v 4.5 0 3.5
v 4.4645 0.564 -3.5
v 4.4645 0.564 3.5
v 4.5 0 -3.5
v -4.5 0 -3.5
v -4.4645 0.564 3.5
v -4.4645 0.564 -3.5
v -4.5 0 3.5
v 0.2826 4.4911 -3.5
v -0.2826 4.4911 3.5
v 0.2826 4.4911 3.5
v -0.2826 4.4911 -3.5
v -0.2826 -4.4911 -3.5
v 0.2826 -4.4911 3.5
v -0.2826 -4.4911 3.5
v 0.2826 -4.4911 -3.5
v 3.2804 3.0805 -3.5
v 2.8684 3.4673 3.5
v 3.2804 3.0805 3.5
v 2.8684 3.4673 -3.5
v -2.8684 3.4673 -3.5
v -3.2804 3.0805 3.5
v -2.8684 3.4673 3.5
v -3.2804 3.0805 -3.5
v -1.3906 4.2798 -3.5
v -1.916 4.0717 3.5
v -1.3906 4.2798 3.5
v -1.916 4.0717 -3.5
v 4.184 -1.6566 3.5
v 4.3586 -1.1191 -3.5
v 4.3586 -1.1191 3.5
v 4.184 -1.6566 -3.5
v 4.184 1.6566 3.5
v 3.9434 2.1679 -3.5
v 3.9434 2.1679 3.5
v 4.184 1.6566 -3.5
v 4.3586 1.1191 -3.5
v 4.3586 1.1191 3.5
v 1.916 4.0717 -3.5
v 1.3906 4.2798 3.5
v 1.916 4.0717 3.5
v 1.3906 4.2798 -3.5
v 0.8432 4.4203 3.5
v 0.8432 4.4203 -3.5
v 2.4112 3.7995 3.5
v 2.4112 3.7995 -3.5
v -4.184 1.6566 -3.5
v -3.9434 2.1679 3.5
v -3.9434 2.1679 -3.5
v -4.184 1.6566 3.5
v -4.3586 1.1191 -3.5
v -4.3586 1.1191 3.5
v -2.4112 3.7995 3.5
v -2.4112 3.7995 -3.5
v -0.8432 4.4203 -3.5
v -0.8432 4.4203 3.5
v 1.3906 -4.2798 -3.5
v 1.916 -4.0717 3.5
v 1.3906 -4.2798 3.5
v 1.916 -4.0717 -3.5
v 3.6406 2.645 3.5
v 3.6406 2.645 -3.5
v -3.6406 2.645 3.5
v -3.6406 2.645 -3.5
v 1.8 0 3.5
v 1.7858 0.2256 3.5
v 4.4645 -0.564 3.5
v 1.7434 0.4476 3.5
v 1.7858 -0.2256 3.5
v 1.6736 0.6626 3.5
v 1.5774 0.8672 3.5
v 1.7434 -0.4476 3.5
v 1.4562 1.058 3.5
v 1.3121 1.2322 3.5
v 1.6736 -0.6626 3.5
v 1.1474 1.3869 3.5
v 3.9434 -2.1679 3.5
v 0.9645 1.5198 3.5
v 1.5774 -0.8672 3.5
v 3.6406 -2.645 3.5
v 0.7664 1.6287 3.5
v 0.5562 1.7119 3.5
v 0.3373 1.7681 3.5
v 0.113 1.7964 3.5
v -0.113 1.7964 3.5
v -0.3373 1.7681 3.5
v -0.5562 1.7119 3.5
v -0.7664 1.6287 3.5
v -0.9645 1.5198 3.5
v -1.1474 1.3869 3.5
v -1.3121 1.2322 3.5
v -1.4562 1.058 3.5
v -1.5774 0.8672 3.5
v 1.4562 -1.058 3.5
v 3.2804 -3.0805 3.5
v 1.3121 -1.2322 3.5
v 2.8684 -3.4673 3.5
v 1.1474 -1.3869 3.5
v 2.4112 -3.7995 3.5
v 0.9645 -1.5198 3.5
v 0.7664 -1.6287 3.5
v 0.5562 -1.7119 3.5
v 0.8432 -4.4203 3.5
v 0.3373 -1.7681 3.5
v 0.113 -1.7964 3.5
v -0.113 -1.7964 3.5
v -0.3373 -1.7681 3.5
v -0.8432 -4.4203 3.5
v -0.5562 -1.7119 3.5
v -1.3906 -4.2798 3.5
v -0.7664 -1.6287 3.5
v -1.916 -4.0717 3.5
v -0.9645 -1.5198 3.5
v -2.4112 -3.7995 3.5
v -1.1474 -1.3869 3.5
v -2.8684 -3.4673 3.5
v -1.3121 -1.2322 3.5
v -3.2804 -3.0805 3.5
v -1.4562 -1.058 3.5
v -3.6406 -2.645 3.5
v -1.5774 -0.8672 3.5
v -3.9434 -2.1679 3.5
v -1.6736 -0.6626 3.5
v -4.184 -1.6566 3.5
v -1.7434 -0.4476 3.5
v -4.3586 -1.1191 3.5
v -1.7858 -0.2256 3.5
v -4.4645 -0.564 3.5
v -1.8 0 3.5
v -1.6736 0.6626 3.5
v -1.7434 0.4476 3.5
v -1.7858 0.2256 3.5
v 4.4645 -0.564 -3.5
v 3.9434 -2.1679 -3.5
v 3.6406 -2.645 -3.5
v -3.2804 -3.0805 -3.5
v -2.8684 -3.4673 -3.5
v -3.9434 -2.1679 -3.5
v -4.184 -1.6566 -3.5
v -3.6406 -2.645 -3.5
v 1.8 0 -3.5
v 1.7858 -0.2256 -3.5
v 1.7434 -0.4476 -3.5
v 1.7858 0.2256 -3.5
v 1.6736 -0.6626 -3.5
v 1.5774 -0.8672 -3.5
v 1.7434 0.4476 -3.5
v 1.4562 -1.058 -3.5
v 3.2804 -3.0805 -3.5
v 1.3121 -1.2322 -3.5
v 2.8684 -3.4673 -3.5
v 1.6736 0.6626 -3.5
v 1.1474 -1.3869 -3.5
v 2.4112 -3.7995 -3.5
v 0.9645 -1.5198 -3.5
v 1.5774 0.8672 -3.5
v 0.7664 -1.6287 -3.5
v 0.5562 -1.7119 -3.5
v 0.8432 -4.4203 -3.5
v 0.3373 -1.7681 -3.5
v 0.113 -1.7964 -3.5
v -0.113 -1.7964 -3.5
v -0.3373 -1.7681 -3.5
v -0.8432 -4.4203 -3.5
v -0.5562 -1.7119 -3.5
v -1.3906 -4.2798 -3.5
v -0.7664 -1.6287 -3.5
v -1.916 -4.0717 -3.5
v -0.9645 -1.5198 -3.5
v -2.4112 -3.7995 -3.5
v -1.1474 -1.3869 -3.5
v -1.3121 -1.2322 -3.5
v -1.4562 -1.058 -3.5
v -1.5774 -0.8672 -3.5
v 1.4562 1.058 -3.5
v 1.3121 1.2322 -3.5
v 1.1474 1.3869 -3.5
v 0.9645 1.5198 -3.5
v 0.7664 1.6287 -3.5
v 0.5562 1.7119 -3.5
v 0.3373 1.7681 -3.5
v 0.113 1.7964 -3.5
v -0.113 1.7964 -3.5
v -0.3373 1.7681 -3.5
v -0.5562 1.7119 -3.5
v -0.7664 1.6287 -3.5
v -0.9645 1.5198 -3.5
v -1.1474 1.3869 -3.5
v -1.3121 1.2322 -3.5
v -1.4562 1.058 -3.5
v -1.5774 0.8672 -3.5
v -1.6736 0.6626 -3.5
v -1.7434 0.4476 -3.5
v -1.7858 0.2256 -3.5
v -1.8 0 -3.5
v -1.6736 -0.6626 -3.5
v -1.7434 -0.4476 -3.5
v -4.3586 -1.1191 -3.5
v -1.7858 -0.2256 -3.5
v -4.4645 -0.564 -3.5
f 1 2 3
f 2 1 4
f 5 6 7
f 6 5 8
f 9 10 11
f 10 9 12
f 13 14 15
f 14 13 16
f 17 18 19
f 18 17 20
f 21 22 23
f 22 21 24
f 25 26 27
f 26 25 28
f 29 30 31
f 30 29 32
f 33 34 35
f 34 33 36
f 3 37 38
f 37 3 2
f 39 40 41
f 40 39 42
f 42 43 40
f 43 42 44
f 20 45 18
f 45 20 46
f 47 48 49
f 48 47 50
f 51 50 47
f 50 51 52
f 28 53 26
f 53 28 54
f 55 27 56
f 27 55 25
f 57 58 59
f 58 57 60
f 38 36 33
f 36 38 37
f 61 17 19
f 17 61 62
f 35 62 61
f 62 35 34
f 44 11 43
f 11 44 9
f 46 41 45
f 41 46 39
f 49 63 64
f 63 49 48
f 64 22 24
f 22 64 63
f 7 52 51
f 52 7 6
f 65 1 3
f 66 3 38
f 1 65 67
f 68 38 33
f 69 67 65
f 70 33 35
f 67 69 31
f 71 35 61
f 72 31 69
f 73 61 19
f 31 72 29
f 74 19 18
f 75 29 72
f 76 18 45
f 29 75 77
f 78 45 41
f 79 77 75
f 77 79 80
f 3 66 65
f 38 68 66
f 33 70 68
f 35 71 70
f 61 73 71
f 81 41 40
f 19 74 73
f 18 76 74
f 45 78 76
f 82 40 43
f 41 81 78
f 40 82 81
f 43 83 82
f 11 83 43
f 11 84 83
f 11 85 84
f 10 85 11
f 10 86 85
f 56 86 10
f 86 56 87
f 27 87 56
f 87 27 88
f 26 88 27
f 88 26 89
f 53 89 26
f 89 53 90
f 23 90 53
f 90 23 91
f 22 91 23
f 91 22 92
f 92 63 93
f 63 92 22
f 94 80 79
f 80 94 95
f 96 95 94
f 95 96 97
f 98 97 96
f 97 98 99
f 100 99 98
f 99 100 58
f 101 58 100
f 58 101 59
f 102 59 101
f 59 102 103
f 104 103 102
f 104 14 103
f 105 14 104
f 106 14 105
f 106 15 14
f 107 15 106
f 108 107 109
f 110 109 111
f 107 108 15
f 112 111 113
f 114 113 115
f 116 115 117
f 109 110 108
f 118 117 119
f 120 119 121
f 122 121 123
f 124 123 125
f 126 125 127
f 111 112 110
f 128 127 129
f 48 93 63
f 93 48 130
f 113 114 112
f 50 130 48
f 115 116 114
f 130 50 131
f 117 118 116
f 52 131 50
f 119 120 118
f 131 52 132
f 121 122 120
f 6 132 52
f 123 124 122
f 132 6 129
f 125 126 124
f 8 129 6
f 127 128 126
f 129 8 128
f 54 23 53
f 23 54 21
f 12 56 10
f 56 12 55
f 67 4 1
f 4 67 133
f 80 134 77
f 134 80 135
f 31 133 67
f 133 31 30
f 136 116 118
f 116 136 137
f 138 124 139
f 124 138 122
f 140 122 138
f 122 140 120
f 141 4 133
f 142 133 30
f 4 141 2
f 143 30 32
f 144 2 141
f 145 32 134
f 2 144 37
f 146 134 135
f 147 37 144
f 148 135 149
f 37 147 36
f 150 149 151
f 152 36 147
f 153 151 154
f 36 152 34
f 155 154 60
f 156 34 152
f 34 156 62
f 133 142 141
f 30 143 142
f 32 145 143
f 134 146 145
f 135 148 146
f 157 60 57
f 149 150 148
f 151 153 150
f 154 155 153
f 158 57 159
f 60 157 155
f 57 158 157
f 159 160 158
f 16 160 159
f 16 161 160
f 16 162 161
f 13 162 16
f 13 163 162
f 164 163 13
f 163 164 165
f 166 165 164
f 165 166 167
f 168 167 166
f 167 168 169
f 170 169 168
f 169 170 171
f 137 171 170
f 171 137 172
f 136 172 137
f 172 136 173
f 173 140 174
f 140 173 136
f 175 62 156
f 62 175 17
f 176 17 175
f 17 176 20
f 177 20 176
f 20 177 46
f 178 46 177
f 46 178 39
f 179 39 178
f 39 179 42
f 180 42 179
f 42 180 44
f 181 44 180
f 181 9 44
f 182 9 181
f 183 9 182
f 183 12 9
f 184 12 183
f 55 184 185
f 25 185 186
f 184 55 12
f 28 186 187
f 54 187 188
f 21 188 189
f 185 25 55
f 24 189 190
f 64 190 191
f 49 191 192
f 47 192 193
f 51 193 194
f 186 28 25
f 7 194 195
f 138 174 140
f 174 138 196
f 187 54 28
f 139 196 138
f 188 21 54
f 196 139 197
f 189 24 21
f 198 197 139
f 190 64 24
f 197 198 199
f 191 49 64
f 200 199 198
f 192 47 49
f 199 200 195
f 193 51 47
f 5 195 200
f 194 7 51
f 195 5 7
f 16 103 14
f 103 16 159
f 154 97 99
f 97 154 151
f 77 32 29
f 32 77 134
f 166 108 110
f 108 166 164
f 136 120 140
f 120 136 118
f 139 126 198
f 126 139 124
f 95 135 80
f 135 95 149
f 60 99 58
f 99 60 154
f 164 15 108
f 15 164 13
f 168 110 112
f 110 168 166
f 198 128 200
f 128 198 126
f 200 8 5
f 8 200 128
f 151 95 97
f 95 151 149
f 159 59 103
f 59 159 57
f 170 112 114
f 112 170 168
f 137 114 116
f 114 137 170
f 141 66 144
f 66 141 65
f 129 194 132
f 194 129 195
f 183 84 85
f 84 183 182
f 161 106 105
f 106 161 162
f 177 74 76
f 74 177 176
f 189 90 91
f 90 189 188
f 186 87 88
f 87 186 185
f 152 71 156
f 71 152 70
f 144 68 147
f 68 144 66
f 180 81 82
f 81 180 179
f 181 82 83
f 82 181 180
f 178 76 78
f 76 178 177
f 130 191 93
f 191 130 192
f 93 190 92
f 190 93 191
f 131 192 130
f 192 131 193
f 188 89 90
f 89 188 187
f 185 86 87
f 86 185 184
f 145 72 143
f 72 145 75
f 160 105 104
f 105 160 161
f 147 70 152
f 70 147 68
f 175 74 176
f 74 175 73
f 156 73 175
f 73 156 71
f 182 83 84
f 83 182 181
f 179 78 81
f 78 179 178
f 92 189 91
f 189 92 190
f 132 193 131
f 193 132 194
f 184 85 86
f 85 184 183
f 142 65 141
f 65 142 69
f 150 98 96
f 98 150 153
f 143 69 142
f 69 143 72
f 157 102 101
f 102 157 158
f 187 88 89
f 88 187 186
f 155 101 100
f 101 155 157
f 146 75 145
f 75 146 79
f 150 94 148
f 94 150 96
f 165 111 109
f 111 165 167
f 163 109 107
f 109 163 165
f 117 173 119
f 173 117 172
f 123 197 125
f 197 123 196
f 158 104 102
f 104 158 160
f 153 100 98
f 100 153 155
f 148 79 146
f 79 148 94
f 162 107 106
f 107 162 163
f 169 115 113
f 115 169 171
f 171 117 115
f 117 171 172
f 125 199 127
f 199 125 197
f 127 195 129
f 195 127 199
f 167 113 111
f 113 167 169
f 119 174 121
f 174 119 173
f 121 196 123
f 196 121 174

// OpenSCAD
$fn = 50;


difference() {
	union() {
		translate(v = [0, 0, -3.5000000000]) {
			cylinder(h = 7, r = 4.5000000000);
		}
	}
	union() {
		translate(v = [0, 0, -100.0000000000]) {
			cylinder(h = 200, r = 1.8000000000);
		}
	}
}
